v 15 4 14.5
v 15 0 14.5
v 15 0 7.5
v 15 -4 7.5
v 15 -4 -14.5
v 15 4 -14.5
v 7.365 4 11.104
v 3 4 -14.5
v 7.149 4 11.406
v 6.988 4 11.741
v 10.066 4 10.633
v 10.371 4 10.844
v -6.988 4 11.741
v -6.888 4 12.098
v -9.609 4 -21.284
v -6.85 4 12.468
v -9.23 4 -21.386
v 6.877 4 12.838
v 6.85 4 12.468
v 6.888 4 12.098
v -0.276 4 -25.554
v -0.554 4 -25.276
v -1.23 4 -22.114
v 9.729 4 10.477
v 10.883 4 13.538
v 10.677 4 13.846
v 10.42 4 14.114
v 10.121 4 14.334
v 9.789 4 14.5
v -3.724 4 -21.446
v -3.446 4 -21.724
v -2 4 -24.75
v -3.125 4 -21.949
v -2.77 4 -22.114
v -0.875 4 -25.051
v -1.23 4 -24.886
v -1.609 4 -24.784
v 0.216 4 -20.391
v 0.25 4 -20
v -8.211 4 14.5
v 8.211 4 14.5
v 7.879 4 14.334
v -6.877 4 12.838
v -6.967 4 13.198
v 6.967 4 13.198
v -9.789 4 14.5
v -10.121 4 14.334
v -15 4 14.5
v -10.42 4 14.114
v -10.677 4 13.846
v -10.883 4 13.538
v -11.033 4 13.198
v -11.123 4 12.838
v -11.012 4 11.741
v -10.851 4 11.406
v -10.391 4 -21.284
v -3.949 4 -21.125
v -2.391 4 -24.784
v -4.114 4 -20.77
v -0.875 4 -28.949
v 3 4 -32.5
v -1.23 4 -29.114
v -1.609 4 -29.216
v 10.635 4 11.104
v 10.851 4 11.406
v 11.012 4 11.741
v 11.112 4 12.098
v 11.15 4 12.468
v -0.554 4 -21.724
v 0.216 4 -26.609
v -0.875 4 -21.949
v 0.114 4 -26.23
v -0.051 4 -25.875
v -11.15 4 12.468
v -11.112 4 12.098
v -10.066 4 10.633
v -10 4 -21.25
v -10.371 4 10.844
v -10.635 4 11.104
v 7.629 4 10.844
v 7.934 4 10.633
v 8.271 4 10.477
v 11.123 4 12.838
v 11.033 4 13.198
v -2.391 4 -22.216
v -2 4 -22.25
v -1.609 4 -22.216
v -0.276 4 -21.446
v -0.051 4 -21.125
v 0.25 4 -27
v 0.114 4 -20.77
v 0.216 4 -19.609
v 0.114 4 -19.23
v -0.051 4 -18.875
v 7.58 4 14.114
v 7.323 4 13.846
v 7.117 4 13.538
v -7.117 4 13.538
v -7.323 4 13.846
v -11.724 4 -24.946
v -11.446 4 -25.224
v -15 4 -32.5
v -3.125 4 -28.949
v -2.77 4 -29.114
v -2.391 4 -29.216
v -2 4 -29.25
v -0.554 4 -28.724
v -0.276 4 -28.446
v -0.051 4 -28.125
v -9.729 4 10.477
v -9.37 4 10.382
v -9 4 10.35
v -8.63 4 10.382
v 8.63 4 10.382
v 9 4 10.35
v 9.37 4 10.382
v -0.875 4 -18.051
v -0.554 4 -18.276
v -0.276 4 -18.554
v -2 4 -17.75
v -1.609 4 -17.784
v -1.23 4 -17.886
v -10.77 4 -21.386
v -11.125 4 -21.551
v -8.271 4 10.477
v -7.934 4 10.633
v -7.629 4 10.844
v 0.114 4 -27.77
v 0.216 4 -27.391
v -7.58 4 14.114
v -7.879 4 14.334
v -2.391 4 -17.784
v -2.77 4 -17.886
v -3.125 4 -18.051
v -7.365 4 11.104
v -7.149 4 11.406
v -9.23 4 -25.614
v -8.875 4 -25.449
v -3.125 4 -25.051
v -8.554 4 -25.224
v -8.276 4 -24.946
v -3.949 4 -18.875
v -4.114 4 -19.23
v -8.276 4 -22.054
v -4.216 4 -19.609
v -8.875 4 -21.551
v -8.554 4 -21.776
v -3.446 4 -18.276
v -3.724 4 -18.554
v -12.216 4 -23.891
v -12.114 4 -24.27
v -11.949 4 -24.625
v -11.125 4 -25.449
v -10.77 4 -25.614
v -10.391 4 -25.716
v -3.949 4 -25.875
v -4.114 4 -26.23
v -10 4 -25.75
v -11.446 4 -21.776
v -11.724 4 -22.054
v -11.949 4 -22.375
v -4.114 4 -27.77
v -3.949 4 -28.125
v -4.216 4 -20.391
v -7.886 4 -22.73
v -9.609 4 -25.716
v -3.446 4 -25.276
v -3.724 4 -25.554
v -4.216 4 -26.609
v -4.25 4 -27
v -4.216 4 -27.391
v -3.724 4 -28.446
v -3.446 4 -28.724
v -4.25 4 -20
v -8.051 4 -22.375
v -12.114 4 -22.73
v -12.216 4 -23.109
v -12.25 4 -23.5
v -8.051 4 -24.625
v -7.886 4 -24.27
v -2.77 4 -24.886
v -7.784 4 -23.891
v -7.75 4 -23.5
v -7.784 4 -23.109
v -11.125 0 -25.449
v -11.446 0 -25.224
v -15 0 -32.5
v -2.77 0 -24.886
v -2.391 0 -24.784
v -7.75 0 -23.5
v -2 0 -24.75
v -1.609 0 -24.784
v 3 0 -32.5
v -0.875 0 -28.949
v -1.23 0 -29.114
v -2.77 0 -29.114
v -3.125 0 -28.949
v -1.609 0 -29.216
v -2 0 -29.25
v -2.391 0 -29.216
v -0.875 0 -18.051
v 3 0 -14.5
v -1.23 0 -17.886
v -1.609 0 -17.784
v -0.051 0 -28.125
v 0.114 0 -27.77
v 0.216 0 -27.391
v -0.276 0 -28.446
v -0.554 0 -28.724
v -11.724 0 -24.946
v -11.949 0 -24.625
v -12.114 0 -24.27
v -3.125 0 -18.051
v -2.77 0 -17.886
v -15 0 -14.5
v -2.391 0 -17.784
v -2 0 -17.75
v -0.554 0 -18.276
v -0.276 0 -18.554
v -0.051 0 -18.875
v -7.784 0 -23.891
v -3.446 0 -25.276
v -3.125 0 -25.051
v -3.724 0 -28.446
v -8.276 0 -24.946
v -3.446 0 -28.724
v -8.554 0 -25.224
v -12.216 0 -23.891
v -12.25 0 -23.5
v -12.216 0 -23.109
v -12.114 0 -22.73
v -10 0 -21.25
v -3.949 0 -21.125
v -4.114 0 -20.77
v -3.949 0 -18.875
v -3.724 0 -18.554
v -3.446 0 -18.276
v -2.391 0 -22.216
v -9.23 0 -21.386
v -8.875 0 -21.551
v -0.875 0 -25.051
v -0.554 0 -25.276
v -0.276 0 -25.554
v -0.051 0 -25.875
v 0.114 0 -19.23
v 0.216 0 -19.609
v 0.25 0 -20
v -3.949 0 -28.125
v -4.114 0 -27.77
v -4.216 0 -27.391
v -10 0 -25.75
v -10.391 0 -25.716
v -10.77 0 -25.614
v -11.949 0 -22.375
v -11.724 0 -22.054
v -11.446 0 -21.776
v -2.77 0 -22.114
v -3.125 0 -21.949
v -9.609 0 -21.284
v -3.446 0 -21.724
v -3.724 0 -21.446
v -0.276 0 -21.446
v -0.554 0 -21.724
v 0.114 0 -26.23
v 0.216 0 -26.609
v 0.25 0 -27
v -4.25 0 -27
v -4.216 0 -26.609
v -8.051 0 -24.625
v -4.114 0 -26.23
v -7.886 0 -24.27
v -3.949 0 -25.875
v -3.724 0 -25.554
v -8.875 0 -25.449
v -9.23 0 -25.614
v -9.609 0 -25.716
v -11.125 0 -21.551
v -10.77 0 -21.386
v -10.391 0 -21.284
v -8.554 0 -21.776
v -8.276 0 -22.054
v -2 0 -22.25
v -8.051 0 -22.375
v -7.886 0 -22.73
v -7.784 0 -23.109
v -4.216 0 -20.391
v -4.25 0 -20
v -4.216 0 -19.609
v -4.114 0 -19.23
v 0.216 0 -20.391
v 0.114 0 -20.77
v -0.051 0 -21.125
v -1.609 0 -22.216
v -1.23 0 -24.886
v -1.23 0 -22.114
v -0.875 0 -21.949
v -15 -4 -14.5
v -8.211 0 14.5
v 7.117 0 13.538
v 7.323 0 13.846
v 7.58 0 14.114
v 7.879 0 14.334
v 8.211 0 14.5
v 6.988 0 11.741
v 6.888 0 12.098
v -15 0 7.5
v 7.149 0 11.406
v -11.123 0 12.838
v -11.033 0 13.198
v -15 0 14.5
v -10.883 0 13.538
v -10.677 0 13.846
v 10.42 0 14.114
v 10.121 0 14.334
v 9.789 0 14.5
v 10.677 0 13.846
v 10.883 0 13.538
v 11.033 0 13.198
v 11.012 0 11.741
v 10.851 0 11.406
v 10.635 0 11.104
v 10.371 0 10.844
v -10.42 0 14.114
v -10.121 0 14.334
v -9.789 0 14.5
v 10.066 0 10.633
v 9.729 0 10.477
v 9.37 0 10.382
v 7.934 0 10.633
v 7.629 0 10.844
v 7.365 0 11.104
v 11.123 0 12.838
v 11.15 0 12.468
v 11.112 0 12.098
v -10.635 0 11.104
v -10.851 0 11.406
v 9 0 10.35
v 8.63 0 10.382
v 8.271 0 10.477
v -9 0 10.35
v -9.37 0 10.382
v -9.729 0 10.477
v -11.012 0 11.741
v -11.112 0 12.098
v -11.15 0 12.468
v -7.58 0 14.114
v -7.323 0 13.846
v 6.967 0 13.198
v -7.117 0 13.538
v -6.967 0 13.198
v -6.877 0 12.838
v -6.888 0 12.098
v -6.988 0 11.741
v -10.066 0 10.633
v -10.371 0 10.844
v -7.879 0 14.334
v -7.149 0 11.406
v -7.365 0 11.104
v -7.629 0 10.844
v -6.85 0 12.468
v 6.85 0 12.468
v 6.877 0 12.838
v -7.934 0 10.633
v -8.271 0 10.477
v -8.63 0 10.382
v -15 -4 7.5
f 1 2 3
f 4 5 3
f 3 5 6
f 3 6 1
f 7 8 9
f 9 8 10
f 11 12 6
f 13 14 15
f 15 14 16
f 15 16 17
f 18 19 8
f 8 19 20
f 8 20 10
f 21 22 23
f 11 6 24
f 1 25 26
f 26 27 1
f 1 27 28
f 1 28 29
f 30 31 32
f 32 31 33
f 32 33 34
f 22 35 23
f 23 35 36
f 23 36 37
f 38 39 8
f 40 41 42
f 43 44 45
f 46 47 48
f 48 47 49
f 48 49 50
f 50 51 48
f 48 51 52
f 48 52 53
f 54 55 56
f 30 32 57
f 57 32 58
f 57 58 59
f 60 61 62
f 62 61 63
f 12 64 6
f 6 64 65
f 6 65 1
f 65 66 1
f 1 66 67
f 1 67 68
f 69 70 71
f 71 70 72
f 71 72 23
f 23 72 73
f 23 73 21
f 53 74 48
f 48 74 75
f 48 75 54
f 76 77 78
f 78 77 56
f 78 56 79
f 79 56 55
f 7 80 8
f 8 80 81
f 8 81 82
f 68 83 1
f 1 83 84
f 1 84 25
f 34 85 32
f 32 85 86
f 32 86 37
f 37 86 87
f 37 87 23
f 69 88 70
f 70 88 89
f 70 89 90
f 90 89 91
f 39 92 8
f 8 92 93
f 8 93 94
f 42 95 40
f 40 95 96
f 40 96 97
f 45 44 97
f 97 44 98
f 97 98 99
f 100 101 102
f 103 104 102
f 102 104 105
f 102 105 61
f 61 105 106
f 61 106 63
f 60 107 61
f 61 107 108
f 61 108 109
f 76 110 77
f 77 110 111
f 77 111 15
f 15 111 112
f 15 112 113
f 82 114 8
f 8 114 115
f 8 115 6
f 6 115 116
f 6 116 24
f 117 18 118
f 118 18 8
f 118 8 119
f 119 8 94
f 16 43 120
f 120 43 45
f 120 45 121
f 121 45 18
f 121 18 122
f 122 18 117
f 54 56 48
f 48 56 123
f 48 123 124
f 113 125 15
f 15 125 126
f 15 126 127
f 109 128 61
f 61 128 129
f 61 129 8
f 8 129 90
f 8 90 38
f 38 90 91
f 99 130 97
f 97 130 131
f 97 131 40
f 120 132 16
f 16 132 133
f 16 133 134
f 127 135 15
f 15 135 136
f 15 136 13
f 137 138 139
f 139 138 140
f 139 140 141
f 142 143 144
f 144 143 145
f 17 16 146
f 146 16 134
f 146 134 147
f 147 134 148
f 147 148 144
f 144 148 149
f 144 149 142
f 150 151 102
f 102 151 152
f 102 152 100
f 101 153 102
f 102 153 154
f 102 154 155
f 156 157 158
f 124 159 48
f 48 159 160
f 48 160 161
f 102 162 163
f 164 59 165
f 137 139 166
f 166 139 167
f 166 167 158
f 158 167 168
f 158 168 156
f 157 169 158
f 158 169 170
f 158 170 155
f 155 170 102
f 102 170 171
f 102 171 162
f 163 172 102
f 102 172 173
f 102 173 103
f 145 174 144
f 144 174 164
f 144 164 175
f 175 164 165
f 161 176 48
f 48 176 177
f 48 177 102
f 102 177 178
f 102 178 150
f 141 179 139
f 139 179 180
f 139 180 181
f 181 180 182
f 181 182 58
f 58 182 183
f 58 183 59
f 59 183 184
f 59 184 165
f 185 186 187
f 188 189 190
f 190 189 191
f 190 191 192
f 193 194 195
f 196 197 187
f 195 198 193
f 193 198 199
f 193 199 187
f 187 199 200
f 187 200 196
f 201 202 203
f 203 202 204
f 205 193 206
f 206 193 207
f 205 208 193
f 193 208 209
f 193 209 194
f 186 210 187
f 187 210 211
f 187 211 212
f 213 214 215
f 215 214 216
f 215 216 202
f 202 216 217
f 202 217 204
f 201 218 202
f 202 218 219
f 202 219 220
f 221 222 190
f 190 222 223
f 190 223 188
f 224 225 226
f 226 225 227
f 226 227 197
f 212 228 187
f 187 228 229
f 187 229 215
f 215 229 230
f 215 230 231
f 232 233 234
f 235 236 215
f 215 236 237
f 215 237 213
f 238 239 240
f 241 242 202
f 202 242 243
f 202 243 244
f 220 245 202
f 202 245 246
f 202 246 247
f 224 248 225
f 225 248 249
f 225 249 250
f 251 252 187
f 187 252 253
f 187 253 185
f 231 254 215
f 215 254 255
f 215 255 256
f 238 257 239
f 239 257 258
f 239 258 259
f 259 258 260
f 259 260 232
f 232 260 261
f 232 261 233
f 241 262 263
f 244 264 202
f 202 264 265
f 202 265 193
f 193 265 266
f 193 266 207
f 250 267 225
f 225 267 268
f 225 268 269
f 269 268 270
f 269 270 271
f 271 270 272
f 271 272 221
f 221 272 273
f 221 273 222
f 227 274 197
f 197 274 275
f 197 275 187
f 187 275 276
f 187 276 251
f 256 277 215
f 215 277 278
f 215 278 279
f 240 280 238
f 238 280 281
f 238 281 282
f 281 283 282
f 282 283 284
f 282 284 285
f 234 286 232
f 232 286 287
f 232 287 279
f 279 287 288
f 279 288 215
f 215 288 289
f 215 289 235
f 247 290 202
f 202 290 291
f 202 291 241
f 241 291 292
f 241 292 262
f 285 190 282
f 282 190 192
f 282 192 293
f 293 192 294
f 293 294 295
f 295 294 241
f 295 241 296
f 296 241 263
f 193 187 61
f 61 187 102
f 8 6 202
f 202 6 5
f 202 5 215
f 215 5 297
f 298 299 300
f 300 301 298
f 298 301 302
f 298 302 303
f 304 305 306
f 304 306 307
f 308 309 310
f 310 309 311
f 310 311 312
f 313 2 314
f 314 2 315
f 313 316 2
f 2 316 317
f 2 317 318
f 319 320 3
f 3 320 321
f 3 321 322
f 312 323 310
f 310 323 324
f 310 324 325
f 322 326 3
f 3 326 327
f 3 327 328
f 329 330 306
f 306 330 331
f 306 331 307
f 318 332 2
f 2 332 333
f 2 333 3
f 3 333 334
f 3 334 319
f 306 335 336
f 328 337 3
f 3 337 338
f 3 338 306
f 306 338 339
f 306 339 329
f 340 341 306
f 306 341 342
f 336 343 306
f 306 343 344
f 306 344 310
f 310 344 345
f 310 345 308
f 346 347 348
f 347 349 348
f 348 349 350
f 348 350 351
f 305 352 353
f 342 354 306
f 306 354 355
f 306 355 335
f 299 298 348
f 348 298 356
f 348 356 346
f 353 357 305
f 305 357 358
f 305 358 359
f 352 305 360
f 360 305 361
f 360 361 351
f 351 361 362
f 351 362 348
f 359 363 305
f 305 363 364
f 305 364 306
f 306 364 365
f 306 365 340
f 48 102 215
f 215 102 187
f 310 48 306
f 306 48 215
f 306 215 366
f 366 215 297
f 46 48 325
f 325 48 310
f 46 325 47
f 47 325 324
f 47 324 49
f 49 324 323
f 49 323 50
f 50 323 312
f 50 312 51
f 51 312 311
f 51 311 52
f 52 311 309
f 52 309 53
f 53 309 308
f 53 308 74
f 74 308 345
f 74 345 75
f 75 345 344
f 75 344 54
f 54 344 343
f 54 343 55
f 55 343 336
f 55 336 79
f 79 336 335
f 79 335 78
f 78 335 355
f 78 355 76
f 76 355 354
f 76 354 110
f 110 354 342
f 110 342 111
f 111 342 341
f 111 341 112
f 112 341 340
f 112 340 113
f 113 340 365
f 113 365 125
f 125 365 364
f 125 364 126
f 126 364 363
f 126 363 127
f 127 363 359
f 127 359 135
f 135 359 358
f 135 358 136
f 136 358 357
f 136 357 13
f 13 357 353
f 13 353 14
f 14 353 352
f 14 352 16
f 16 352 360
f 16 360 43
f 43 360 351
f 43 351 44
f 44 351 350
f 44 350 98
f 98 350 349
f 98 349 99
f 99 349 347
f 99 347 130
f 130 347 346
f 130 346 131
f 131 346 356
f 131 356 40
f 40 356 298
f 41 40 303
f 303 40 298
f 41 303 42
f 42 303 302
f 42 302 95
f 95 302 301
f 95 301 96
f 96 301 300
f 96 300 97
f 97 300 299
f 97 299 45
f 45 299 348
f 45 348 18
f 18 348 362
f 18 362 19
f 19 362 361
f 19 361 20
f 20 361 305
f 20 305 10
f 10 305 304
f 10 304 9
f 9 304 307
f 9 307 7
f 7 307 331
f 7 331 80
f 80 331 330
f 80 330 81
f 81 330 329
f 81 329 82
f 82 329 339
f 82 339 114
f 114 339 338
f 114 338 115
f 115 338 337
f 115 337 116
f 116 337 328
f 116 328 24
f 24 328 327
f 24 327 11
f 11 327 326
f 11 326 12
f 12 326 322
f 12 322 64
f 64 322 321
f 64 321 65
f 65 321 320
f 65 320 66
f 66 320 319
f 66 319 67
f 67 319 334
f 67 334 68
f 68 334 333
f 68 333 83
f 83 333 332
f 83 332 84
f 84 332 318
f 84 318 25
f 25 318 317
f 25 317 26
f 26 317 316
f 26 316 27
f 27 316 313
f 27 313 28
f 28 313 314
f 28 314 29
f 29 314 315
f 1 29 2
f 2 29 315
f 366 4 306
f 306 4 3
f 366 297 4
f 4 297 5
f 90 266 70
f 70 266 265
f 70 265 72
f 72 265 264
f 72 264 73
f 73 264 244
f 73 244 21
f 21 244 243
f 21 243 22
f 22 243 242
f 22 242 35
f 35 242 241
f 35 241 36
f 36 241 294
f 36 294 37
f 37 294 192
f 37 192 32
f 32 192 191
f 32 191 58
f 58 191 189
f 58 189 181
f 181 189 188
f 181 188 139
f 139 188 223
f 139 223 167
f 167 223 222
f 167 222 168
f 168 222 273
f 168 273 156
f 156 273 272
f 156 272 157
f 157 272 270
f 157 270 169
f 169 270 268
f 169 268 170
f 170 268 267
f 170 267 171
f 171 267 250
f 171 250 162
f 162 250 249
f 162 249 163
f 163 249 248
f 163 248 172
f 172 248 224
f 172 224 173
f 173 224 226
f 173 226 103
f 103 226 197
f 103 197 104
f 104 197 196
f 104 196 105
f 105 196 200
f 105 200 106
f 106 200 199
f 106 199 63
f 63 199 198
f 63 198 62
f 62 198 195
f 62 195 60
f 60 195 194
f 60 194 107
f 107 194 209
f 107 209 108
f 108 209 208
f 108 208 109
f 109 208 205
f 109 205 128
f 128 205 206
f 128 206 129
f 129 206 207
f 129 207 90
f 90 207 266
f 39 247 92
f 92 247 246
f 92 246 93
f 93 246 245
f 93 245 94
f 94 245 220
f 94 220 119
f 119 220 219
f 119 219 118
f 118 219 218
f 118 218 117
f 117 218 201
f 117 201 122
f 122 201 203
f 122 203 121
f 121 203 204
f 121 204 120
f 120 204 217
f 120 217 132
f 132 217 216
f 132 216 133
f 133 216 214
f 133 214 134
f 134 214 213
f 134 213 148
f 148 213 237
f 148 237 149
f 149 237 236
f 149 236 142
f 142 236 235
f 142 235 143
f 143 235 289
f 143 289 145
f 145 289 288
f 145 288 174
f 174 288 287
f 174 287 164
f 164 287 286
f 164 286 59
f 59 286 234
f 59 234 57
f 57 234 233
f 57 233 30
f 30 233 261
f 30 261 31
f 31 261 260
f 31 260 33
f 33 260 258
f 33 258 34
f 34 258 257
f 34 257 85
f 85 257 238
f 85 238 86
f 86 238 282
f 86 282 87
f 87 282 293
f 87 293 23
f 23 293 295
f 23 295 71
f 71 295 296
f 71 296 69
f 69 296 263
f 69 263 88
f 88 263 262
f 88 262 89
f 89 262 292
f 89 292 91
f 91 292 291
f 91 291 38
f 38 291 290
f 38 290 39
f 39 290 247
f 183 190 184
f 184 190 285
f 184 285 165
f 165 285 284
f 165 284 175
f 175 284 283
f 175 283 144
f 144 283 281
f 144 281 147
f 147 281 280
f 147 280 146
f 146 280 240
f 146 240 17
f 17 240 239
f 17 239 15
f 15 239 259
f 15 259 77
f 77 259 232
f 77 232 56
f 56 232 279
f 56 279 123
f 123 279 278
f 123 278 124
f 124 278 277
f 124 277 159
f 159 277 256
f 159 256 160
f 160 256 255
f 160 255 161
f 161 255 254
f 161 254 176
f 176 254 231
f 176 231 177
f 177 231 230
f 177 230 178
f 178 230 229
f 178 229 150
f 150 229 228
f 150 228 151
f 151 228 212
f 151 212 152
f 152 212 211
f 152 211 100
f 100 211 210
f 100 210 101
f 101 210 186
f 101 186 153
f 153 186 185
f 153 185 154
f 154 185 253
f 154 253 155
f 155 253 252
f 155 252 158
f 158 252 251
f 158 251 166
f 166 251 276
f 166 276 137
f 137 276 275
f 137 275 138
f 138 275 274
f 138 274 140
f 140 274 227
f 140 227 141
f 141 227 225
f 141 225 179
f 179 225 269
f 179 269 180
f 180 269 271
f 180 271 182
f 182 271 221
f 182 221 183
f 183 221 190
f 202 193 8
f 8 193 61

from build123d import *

# Parameters (mm, degrees)
BOSS_EXTRUDE1_DEPTH = 4
SKETCH2_W           = 30
SKETCH2_H           = 22
BOSS_EXTRUDE2_DEPTH = 4
SKETCH3_W           = 30
SKETCH3_H           = 4
BOSS_EXTRUDE3_DEPTH = 18
CUT_EXTRUDE1_REACH  = 6
SKETCH4_R           = 2.25
CUT_EXTRUDE2_REACH  = 6
SKETCH5_W           = 12
SKETCH5_H           = 18


with BuildPart() as part:
    # Sketch1 → Boss-Extrude1 (new body)
    with BuildSketch(Plane(origin=(0, 0, 0), x_dir=(1, 0, 0), z_dir=(0, 1, 0))):
        with BuildLine():
            Line((-15, -14.5), (-9.788986692, -14.5))
            ThreePointArc((-9.788986692, -14.5), (-9, -10.35), (-8.211013308, -14.5))
            Line((-8.211013308, -14.5), (8.211013308, -14.5))
            ThreePointArc((8.211013308, -14.5), (9, -10.35), (9.788986692, -14.5))
            Line((9.788986692, -14.5), (15, -14.5))
            Line((15, -14.5), (15, 14.5))
            Line((15, 14.5), (-15, 14.5))
            Line((-15, 14.5), (-15, -14.5))
        make_face()
    extrude(amount=BOSS_EXTRUDE1_DEPTH)

    # Sketch2 → Boss-Extrude2 (add)
    with BuildSketch(Plane.XZ):
        with Locations((0, -3.5)):
            Rectangle(SKETCH2_W, SKETCH2_H)
    extrude(amount=BOSS_EXTRUDE2_DEPTH)

    # Sketch3 → Boss-Extrude3 (add)
    with BuildSketch(Plane(origin=(0, 0, -14.5), x_dir=(-1, 0, 0), z_dir=(0, 0, -1))):
        with Locations((0, 2)):
            Rectangle(SKETCH3_W, SKETCH3_H)
    extrude(amount=BOSS_EXTRUDE3_DEPTH)

    # Sketch4 → Cut-Extrude1 (cut, up to next)
    with BuildSketch(Plane(origin=(0, 0, 0), x_dir=(-1, 0, 0), z_dir=(0, 1, 0)), mode=Mode.PRIVATE) as cut_extrude1_sk1:
        with Locations((2, -27)):
            Circle(SKETCH4_R)
    cut_extrude1_tool1 = extrude(cut_extrude1_sk1.sketch, amount=CUT_EXTRUDE1_REACH, mode=Mode.PRIVATE) & part.part
    add(cut_extrude1_tool1.solids().sort_by_distance((-2, 0, -27))[0], mode=Mode.SUBTRACT)
    # Sketch4 → Cut-Extrude1 (cut, up to next)
    with BuildSketch(Plane(origin=(0, 0, 0), x_dir=(-1, 0, 0), z_dir=(0, 1, 0)), mode=Mode.PRIVATE) as cut_extrude1_sk2:
        with Locations((10, -23.5)):
            Circle(SKETCH4_R)
    cut_extrude1_tool2 = extrude(cut_extrude1_sk2.sketch, amount=CUT_EXTRUDE1_REACH, mode=Mode.PRIVATE) & part.part
    add(cut_extrude1_tool2.solids().sort_by_distance((-10, 0, -23.5))[0], mode=Mode.SUBTRACT)
    # Sketch4 → Cut-Extrude1 (cut, up to next)
    with BuildSketch(Plane(origin=(0, 0, 0), x_dir=(-1, 0, 0), z_dir=(0, 1, 0)), mode=Mode.PRIVATE) as cut_extrude1_sk3:
        with Locations((2, -20)):
            Circle(SKETCH4_R)
    cut_extrude1_tool3 = extrude(cut_extrude1_sk3.sketch, amount=CUT_EXTRUDE1_REACH, mode=Mode.PRIVATE) & part.part
    add(cut_extrude1_tool3.solids().sort_by_distance((-2, 0, -20))[0], mode=Mode.SUBTRACT)

    # Sketch5 → Cut-Extrude2 (cut, up to next)
    with BuildSketch(Plane(origin=(0, 0, 0), x_dir=(1, 0, 0), z_dir=(0, 1, 0)), mode=Mode.PRIVATE) as cut_extrude2_sk1:
        with Locations((9, 23.5)):
            Rectangle(SKETCH5_W, SKETCH5_H)
    cut_extrude2_tool1 = extrude(cut_extrude2_sk1.sketch, amount=CUT_EXTRUDE2_REACH, mode=Mode.PRIVATE) & part.part
    add(cut_extrude2_tool1.solids().sort_by_distance((9, 0, -23.5))[0], mode=Mode.SUBTRACT)


solid = part.part
